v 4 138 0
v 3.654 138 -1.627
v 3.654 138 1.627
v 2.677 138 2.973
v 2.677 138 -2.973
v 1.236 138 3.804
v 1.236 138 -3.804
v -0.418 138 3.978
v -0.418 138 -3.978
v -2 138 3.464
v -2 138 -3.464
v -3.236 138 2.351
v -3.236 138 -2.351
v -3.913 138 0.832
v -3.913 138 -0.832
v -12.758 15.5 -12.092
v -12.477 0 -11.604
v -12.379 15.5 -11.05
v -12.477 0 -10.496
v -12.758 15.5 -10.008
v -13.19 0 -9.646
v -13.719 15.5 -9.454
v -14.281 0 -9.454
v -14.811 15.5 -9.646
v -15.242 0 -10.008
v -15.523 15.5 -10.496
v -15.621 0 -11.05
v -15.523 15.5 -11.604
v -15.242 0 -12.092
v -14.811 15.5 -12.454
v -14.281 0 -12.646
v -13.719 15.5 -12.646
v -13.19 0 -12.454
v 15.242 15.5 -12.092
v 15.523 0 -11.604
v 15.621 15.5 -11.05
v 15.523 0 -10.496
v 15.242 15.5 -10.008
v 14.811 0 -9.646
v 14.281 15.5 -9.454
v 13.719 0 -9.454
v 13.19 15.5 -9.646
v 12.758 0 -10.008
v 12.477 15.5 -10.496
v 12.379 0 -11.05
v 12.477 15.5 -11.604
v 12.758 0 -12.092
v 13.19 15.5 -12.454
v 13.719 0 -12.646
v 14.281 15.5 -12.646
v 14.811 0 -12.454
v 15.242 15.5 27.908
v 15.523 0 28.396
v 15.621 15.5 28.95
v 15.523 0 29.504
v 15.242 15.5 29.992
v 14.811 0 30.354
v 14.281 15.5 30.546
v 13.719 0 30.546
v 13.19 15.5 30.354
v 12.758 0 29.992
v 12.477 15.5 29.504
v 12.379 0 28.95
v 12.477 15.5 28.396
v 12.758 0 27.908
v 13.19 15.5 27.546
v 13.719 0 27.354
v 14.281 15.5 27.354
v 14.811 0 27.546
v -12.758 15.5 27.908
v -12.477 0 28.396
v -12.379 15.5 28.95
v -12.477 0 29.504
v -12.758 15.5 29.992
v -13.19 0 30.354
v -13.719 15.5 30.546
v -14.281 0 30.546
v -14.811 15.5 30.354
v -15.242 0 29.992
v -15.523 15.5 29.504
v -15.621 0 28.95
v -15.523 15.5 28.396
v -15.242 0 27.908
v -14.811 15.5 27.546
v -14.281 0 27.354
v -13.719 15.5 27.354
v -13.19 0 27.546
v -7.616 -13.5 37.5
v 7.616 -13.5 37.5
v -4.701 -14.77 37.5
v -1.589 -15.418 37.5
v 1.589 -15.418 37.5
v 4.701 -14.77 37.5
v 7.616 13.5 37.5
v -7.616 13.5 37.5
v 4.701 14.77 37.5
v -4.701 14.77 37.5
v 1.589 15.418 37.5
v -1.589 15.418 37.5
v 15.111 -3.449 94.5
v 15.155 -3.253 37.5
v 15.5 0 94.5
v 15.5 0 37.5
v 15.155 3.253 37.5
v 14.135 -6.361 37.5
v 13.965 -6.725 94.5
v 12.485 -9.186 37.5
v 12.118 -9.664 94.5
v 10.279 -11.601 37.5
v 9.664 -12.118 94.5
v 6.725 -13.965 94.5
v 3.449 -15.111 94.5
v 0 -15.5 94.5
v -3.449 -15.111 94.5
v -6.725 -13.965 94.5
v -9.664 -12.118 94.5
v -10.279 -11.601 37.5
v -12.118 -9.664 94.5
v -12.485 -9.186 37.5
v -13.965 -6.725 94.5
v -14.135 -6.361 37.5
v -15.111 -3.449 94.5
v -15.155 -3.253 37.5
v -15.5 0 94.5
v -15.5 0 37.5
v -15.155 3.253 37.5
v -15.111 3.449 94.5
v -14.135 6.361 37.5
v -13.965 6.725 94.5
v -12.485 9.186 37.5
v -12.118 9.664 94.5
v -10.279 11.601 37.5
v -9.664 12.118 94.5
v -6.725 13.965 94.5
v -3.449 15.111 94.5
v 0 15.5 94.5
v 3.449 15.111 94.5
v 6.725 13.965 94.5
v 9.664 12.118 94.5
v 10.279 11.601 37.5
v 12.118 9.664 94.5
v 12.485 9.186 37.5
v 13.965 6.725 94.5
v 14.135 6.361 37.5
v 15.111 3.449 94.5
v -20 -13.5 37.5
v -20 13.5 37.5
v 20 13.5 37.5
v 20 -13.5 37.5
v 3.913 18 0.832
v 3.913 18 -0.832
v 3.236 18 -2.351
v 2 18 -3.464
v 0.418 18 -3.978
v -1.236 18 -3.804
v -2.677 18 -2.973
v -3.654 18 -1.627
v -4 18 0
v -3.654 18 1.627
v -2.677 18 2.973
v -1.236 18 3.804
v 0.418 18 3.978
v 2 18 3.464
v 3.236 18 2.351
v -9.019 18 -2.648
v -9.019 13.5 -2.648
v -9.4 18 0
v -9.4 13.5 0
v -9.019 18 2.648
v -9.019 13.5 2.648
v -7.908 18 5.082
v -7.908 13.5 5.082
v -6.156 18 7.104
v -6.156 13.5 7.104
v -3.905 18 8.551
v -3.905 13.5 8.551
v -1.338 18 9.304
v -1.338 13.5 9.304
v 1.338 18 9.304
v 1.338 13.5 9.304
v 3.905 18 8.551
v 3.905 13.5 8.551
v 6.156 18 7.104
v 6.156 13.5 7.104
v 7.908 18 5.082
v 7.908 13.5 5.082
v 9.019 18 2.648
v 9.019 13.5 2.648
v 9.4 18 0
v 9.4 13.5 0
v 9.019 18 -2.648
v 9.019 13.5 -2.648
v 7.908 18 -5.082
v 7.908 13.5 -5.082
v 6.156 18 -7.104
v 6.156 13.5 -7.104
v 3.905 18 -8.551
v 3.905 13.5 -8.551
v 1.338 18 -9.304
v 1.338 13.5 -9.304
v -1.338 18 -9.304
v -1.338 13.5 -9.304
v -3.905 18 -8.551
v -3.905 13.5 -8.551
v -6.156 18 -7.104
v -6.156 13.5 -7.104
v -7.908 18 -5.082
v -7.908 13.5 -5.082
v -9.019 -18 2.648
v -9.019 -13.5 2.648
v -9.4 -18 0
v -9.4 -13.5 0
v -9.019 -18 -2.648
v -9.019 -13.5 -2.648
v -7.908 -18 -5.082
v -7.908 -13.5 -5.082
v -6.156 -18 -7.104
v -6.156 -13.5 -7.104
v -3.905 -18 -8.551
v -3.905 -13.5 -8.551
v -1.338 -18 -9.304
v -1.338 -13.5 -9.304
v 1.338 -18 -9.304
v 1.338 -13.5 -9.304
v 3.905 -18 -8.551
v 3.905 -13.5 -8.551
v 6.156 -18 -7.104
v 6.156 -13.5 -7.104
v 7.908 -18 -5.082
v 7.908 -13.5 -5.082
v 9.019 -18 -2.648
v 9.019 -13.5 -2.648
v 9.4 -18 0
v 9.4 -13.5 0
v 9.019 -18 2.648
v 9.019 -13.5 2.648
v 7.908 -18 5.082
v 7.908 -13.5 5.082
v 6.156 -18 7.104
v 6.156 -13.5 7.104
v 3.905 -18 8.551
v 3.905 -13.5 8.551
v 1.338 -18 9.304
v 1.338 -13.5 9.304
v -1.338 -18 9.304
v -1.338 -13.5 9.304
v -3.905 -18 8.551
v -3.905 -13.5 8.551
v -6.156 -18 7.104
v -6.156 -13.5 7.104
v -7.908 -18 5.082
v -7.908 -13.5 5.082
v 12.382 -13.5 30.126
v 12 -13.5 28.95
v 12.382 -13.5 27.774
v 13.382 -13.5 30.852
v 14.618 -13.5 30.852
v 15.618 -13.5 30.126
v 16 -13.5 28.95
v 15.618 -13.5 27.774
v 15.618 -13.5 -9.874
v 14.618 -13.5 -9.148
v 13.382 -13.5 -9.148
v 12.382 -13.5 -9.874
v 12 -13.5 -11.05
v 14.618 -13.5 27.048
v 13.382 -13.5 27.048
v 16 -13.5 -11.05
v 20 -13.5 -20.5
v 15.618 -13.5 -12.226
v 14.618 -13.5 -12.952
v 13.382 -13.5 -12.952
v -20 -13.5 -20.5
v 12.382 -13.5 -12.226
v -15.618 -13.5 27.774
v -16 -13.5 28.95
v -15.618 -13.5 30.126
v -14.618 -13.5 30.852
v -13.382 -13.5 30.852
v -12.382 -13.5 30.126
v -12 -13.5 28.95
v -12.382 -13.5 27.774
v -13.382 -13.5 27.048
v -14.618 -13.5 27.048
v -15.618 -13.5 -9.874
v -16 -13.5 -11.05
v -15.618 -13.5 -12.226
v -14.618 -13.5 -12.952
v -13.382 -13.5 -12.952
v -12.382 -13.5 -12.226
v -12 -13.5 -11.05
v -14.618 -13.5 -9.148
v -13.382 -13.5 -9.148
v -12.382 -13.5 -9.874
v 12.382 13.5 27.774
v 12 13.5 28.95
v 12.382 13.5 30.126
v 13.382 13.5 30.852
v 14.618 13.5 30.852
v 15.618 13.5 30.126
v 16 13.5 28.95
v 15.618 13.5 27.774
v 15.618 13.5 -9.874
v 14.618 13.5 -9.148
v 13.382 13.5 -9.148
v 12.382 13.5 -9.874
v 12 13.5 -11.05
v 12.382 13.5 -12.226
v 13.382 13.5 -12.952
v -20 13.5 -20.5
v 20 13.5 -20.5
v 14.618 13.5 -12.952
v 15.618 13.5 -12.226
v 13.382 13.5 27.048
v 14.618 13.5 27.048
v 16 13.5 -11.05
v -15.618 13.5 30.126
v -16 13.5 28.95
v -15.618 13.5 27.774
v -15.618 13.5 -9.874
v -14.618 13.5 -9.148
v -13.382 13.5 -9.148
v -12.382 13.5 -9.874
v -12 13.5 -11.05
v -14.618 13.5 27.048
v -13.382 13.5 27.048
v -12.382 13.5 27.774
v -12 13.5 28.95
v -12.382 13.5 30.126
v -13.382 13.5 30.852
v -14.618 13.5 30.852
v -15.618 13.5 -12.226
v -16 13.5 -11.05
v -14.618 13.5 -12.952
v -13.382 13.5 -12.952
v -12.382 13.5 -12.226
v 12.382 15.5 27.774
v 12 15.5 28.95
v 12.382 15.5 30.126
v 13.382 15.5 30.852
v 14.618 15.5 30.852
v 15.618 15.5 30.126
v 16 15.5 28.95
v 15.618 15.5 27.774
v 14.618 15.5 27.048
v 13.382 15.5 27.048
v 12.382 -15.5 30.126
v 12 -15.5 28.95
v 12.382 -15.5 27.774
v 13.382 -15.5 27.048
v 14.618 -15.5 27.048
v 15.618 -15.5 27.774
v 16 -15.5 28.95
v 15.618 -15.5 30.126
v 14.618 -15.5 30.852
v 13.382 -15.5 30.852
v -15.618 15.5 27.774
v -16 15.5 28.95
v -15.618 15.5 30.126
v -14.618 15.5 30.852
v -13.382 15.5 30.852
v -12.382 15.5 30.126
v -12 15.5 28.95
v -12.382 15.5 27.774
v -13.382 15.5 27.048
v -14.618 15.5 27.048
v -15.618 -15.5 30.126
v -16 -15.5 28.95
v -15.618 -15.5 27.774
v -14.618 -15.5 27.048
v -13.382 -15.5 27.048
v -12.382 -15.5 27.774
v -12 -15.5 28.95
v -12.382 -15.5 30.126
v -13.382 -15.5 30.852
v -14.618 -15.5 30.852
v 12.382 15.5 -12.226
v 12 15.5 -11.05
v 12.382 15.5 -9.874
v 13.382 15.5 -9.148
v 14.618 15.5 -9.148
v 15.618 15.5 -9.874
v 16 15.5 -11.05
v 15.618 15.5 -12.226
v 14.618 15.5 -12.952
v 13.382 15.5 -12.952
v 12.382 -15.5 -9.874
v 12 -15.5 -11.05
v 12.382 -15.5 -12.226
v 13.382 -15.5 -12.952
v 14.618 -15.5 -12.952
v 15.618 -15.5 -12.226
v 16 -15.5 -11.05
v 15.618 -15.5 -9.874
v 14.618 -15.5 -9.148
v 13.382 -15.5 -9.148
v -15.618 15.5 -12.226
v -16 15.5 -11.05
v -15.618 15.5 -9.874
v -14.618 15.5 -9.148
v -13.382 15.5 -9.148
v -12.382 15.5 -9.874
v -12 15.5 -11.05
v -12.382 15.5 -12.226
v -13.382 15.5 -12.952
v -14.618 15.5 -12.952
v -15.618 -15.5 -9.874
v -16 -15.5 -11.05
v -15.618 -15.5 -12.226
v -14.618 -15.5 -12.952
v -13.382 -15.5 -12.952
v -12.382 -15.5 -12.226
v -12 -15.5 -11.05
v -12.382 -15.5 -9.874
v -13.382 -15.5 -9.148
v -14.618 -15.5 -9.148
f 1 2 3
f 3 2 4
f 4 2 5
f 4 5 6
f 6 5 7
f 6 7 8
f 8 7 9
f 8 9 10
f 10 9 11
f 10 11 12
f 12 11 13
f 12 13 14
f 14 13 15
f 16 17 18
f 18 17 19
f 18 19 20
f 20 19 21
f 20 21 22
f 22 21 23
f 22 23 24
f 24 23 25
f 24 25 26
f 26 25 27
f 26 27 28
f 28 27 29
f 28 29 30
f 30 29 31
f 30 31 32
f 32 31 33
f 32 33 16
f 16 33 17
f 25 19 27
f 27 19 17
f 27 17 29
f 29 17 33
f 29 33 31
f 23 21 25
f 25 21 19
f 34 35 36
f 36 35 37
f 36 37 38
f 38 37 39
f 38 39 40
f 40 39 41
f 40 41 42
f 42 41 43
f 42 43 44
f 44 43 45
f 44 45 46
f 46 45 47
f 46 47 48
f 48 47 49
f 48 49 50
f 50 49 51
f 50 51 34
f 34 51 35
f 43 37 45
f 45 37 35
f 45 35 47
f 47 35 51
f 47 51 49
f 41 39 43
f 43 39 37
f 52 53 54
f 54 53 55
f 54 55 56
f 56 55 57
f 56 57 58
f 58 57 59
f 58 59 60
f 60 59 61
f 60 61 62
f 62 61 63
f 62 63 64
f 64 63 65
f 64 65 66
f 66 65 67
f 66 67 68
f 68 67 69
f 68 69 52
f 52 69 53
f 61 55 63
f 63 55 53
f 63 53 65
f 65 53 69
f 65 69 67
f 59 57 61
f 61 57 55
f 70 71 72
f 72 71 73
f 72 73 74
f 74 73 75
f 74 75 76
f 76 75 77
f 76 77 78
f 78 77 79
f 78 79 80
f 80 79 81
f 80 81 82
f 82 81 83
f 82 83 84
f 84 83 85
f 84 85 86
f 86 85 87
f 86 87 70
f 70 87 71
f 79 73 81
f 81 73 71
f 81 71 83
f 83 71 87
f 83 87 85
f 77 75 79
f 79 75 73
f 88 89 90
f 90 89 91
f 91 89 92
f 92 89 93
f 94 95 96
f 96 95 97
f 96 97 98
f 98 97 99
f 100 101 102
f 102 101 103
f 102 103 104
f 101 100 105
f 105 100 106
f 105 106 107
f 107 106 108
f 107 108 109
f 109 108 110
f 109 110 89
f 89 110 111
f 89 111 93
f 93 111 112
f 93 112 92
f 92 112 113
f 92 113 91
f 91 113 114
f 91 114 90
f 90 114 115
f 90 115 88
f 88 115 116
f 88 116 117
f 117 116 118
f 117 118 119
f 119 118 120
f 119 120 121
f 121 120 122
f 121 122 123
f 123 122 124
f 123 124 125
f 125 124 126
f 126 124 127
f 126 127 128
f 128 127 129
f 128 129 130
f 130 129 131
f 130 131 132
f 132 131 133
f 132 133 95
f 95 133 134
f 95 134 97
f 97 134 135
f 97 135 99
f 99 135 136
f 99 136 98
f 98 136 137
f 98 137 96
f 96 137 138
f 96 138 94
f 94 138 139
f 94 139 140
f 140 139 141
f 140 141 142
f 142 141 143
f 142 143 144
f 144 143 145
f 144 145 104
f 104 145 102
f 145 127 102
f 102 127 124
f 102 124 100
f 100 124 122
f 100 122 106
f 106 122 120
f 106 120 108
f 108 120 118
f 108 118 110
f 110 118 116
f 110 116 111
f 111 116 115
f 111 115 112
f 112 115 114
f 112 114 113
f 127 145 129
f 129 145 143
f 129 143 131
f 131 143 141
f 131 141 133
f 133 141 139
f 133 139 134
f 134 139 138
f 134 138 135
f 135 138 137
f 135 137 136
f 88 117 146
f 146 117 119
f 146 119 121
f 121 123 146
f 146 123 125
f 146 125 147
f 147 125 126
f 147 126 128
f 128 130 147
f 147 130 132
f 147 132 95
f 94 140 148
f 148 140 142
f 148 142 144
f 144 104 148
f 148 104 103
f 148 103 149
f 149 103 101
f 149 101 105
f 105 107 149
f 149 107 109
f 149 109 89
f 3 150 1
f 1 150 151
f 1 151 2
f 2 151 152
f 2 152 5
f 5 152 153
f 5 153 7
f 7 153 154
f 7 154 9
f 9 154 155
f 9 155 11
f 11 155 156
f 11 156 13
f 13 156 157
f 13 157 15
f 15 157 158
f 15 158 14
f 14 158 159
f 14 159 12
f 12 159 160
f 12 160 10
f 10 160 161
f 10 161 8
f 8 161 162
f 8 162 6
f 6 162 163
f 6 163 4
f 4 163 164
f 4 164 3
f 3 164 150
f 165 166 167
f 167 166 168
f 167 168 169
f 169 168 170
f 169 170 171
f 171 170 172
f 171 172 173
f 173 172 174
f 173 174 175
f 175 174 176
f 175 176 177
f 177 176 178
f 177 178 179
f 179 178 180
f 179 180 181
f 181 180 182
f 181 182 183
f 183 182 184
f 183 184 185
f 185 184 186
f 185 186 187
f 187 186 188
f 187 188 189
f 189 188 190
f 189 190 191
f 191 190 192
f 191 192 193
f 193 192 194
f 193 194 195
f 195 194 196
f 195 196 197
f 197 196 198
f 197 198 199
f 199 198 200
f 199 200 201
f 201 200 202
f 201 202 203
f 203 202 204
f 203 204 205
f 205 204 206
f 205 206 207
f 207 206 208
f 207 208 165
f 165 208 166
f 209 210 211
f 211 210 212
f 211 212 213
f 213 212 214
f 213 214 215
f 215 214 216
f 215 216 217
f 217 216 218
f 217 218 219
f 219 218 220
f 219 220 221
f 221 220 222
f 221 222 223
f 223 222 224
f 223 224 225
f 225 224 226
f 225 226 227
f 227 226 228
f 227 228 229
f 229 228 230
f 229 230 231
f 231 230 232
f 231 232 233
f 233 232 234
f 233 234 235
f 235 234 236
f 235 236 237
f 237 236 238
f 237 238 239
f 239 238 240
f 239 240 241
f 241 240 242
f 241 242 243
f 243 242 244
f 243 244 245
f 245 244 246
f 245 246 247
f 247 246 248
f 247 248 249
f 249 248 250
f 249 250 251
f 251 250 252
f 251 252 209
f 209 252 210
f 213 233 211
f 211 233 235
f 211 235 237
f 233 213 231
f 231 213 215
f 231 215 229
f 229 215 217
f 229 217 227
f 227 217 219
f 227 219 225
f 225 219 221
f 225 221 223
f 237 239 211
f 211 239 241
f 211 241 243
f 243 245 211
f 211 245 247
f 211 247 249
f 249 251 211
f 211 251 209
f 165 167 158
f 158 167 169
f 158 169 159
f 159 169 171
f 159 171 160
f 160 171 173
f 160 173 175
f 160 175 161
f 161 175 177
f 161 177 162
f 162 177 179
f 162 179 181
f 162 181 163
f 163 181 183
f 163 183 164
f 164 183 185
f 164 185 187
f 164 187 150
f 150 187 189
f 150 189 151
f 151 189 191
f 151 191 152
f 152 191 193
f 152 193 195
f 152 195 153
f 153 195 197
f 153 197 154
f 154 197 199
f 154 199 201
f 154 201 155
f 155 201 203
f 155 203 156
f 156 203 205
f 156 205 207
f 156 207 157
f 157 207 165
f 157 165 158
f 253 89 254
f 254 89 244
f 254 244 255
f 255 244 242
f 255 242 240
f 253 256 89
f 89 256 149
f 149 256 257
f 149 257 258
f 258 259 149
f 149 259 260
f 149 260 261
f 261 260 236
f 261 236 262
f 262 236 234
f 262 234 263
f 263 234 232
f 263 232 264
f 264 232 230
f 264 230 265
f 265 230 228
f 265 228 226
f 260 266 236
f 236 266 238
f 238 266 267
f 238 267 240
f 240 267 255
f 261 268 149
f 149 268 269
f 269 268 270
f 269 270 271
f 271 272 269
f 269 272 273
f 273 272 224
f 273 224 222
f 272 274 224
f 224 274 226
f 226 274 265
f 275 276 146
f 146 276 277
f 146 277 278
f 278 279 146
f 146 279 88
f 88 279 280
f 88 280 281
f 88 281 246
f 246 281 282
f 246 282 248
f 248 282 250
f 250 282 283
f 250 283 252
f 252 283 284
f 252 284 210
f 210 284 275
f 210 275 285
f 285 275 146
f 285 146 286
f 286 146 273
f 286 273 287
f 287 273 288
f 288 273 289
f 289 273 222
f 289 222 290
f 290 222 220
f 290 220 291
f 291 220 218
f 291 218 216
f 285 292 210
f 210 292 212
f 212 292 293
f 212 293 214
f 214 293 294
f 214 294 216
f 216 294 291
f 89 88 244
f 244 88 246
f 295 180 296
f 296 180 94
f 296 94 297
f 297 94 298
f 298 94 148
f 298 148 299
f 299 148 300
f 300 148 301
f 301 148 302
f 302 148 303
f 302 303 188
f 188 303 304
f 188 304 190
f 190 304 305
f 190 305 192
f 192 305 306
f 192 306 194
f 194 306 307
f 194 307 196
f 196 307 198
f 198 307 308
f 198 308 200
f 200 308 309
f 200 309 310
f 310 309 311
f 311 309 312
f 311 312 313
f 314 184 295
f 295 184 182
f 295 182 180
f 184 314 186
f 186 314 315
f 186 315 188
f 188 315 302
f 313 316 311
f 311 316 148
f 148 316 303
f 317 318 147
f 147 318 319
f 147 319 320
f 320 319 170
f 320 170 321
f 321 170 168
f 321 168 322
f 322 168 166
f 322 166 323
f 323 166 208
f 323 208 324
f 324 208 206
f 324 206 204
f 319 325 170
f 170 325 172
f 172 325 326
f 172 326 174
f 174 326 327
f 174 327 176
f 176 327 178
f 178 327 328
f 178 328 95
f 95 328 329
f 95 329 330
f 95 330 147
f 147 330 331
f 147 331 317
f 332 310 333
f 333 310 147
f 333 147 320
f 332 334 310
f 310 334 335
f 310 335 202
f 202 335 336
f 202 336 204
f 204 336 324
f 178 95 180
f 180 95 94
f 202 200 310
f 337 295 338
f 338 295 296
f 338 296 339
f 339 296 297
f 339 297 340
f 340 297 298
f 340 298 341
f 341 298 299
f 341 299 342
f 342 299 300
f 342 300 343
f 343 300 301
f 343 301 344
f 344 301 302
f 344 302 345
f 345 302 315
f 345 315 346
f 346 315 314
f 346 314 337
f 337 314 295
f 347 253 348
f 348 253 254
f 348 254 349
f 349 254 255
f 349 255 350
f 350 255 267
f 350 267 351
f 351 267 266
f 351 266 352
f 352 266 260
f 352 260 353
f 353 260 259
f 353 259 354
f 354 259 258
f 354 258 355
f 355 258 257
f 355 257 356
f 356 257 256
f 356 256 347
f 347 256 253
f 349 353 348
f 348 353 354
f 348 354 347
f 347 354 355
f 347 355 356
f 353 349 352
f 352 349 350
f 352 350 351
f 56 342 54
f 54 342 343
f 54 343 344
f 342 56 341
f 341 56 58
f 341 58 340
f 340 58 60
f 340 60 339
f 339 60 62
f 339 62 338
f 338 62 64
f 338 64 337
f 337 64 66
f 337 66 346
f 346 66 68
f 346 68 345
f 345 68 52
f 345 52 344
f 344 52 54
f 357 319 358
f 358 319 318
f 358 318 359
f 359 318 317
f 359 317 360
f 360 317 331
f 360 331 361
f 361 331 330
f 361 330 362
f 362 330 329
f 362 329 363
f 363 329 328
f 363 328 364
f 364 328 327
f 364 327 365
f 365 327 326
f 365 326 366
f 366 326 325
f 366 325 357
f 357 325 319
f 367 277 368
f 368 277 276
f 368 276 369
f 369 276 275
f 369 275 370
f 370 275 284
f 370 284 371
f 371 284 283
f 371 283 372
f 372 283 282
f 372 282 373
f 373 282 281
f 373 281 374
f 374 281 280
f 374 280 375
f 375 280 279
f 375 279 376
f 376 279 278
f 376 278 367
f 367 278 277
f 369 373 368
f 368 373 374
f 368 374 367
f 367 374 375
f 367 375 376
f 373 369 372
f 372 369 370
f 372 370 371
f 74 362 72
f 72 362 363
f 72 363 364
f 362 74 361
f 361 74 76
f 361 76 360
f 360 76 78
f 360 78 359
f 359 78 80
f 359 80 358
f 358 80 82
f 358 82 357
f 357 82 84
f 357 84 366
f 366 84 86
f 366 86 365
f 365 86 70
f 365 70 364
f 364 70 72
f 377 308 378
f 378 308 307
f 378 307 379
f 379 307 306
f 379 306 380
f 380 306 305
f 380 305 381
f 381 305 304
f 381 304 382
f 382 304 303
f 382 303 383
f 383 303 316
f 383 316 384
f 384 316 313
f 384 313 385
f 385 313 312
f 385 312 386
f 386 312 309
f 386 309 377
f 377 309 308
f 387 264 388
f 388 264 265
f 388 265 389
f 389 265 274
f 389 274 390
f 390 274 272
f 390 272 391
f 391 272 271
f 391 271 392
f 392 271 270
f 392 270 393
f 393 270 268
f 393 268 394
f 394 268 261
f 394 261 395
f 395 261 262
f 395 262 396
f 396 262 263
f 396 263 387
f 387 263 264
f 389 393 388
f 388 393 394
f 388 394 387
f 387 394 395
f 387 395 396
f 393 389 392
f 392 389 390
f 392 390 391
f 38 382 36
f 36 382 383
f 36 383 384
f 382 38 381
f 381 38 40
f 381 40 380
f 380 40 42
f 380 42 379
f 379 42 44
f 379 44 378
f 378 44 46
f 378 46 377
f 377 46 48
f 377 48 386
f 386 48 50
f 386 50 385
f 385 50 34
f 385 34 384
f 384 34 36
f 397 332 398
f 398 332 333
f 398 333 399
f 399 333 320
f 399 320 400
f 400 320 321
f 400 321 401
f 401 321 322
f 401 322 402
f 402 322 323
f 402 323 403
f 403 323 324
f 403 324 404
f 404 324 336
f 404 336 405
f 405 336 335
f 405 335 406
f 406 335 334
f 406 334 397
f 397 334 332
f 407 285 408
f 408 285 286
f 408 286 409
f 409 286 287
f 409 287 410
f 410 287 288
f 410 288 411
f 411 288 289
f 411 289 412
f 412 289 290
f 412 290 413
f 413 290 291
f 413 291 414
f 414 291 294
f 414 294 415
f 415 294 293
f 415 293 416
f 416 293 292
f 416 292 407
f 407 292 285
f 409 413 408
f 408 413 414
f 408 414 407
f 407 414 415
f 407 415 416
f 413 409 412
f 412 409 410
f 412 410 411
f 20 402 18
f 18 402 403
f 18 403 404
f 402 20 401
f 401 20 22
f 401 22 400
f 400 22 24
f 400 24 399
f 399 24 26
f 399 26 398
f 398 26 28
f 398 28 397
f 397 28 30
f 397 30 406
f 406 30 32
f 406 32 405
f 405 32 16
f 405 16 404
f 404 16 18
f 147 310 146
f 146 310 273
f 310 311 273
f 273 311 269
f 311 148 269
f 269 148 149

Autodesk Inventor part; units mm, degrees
ref_plane "YZ Plane" through (0, 0, 0) normal (1, 0, 0) x (0, 1, 0)
ref_plane "XZ Plane" through (0, 0, 0) normal (0, 1, 0) x (-1, 0, 0)
ref_plane "XY Plane" through (0, 0, 0) normal (0, 0, 1) x (1, 0, 0)
sketch "Sketch1" plane through (0, 0, 0) normal (0, 1, 0) x (-1, 0, 0)
  line L0 (20, 37.5) -> (-20, 37.5)
  line L1 (-20, 37.5) -> (-20, -20.5)
  line L2 (-20, -20.5) -> (20, -20.5)
  line L3 (20, -20.5) -> (20, 37.5)
  circle A0 centre (14, -11.05) radius 2
  circle A1 centre (14, 28.95) radius 2
  circle A2 centre (-14, -11.05) radius 2
  circle A3 centre (-14, 28.95) radius 2
  circle A4 centre (0, 0) radius 9.4
  circle A5 centre (0, 0) radius 4
  dimension "d0" = 58
  dimension "d1" = 20.5
  dimension "d2" = 40
  dimension "d3" = 20
  dimension "d4" = 4
  dimension "d5" = 4
  dimension "d6" = 40
  dimension "d7" = 11.05
  dimension "d8" = 4
  dimension "d9" = 4
  dimension "d10" = 28
  dimension "d11" = 40
  dimension "d12" = 28
  dimension "d13" = 6
  dimension "d14" = 6
  dimension "d15" = 6
  dimension "d20" = 18.8
  dimension "d21" = 8
extrude "Extrusion1" add sketch "Sketch1" along normal mid plane 27 contours L3 L2 L1 L0 | A4 | A5
extrude "Extrusion2" add sketch "Sketch1" along normal mid plane 31 contours A0 | A1 | A2 | A3
extrude "Extrusion3" add sketch "Sketch1" along normal mid plane 36 contours A4
extrude "Extrusion4" add sketch "Sketch1" along normal blind 22 contours A5
sketch "Sketch2" plane through (-20, 13.5, 37.5) normal (0, 0, 1) x (1, 0, 0)
  circle A0 centre (20, -13.5) radius 15.5
  dimension "d26" = 31
extrude "Extrusion5" add sketch "Sketch2" along normal blind 57
extrude "Extrusion6" add sketch "Sketch1" against normal blind 18 contours A5
hole "Hole1" at (-14, 0, 28.95) direction (0, 1, 0) diameter 3.242 end through all thread size "M4x0.7" class "6H" standard "ISO Metric profile"
hole "Hole2" at (14, 0, 28.95) direction (0, 1, 0) diameter 3.242 end through all thread size "M4x0.7" class "6H" standard "ISO Metric profile"
hole "Hole3" at (14, 0, -11.05) direction (0, 1, 0) diameter 3.242 end through all thread size "M4x0.7" class "6H" standard "ISO Metric profile"
hole "Hole4" at (-14, 0, -11.05) direction (0, 1, 0) diameter 3.242 end through all thread size "M4x0.7" class "6H" standard "ISO Metric profile"
sketch "Sketch5" plane through (0, 22, 0) normal (0, 1, 0) x (1, 0, 0)
  circle A0 centre (0, 0) radius 4 projected
extrude "Extrusion7" add sketch "Sketch5" along normal blind 116
thread "Thread1" size "M8x1.25" class "6g" standard "ANSI Metric M Profile" length 116 offset 4
properties part number "Motor_Gearbox"
